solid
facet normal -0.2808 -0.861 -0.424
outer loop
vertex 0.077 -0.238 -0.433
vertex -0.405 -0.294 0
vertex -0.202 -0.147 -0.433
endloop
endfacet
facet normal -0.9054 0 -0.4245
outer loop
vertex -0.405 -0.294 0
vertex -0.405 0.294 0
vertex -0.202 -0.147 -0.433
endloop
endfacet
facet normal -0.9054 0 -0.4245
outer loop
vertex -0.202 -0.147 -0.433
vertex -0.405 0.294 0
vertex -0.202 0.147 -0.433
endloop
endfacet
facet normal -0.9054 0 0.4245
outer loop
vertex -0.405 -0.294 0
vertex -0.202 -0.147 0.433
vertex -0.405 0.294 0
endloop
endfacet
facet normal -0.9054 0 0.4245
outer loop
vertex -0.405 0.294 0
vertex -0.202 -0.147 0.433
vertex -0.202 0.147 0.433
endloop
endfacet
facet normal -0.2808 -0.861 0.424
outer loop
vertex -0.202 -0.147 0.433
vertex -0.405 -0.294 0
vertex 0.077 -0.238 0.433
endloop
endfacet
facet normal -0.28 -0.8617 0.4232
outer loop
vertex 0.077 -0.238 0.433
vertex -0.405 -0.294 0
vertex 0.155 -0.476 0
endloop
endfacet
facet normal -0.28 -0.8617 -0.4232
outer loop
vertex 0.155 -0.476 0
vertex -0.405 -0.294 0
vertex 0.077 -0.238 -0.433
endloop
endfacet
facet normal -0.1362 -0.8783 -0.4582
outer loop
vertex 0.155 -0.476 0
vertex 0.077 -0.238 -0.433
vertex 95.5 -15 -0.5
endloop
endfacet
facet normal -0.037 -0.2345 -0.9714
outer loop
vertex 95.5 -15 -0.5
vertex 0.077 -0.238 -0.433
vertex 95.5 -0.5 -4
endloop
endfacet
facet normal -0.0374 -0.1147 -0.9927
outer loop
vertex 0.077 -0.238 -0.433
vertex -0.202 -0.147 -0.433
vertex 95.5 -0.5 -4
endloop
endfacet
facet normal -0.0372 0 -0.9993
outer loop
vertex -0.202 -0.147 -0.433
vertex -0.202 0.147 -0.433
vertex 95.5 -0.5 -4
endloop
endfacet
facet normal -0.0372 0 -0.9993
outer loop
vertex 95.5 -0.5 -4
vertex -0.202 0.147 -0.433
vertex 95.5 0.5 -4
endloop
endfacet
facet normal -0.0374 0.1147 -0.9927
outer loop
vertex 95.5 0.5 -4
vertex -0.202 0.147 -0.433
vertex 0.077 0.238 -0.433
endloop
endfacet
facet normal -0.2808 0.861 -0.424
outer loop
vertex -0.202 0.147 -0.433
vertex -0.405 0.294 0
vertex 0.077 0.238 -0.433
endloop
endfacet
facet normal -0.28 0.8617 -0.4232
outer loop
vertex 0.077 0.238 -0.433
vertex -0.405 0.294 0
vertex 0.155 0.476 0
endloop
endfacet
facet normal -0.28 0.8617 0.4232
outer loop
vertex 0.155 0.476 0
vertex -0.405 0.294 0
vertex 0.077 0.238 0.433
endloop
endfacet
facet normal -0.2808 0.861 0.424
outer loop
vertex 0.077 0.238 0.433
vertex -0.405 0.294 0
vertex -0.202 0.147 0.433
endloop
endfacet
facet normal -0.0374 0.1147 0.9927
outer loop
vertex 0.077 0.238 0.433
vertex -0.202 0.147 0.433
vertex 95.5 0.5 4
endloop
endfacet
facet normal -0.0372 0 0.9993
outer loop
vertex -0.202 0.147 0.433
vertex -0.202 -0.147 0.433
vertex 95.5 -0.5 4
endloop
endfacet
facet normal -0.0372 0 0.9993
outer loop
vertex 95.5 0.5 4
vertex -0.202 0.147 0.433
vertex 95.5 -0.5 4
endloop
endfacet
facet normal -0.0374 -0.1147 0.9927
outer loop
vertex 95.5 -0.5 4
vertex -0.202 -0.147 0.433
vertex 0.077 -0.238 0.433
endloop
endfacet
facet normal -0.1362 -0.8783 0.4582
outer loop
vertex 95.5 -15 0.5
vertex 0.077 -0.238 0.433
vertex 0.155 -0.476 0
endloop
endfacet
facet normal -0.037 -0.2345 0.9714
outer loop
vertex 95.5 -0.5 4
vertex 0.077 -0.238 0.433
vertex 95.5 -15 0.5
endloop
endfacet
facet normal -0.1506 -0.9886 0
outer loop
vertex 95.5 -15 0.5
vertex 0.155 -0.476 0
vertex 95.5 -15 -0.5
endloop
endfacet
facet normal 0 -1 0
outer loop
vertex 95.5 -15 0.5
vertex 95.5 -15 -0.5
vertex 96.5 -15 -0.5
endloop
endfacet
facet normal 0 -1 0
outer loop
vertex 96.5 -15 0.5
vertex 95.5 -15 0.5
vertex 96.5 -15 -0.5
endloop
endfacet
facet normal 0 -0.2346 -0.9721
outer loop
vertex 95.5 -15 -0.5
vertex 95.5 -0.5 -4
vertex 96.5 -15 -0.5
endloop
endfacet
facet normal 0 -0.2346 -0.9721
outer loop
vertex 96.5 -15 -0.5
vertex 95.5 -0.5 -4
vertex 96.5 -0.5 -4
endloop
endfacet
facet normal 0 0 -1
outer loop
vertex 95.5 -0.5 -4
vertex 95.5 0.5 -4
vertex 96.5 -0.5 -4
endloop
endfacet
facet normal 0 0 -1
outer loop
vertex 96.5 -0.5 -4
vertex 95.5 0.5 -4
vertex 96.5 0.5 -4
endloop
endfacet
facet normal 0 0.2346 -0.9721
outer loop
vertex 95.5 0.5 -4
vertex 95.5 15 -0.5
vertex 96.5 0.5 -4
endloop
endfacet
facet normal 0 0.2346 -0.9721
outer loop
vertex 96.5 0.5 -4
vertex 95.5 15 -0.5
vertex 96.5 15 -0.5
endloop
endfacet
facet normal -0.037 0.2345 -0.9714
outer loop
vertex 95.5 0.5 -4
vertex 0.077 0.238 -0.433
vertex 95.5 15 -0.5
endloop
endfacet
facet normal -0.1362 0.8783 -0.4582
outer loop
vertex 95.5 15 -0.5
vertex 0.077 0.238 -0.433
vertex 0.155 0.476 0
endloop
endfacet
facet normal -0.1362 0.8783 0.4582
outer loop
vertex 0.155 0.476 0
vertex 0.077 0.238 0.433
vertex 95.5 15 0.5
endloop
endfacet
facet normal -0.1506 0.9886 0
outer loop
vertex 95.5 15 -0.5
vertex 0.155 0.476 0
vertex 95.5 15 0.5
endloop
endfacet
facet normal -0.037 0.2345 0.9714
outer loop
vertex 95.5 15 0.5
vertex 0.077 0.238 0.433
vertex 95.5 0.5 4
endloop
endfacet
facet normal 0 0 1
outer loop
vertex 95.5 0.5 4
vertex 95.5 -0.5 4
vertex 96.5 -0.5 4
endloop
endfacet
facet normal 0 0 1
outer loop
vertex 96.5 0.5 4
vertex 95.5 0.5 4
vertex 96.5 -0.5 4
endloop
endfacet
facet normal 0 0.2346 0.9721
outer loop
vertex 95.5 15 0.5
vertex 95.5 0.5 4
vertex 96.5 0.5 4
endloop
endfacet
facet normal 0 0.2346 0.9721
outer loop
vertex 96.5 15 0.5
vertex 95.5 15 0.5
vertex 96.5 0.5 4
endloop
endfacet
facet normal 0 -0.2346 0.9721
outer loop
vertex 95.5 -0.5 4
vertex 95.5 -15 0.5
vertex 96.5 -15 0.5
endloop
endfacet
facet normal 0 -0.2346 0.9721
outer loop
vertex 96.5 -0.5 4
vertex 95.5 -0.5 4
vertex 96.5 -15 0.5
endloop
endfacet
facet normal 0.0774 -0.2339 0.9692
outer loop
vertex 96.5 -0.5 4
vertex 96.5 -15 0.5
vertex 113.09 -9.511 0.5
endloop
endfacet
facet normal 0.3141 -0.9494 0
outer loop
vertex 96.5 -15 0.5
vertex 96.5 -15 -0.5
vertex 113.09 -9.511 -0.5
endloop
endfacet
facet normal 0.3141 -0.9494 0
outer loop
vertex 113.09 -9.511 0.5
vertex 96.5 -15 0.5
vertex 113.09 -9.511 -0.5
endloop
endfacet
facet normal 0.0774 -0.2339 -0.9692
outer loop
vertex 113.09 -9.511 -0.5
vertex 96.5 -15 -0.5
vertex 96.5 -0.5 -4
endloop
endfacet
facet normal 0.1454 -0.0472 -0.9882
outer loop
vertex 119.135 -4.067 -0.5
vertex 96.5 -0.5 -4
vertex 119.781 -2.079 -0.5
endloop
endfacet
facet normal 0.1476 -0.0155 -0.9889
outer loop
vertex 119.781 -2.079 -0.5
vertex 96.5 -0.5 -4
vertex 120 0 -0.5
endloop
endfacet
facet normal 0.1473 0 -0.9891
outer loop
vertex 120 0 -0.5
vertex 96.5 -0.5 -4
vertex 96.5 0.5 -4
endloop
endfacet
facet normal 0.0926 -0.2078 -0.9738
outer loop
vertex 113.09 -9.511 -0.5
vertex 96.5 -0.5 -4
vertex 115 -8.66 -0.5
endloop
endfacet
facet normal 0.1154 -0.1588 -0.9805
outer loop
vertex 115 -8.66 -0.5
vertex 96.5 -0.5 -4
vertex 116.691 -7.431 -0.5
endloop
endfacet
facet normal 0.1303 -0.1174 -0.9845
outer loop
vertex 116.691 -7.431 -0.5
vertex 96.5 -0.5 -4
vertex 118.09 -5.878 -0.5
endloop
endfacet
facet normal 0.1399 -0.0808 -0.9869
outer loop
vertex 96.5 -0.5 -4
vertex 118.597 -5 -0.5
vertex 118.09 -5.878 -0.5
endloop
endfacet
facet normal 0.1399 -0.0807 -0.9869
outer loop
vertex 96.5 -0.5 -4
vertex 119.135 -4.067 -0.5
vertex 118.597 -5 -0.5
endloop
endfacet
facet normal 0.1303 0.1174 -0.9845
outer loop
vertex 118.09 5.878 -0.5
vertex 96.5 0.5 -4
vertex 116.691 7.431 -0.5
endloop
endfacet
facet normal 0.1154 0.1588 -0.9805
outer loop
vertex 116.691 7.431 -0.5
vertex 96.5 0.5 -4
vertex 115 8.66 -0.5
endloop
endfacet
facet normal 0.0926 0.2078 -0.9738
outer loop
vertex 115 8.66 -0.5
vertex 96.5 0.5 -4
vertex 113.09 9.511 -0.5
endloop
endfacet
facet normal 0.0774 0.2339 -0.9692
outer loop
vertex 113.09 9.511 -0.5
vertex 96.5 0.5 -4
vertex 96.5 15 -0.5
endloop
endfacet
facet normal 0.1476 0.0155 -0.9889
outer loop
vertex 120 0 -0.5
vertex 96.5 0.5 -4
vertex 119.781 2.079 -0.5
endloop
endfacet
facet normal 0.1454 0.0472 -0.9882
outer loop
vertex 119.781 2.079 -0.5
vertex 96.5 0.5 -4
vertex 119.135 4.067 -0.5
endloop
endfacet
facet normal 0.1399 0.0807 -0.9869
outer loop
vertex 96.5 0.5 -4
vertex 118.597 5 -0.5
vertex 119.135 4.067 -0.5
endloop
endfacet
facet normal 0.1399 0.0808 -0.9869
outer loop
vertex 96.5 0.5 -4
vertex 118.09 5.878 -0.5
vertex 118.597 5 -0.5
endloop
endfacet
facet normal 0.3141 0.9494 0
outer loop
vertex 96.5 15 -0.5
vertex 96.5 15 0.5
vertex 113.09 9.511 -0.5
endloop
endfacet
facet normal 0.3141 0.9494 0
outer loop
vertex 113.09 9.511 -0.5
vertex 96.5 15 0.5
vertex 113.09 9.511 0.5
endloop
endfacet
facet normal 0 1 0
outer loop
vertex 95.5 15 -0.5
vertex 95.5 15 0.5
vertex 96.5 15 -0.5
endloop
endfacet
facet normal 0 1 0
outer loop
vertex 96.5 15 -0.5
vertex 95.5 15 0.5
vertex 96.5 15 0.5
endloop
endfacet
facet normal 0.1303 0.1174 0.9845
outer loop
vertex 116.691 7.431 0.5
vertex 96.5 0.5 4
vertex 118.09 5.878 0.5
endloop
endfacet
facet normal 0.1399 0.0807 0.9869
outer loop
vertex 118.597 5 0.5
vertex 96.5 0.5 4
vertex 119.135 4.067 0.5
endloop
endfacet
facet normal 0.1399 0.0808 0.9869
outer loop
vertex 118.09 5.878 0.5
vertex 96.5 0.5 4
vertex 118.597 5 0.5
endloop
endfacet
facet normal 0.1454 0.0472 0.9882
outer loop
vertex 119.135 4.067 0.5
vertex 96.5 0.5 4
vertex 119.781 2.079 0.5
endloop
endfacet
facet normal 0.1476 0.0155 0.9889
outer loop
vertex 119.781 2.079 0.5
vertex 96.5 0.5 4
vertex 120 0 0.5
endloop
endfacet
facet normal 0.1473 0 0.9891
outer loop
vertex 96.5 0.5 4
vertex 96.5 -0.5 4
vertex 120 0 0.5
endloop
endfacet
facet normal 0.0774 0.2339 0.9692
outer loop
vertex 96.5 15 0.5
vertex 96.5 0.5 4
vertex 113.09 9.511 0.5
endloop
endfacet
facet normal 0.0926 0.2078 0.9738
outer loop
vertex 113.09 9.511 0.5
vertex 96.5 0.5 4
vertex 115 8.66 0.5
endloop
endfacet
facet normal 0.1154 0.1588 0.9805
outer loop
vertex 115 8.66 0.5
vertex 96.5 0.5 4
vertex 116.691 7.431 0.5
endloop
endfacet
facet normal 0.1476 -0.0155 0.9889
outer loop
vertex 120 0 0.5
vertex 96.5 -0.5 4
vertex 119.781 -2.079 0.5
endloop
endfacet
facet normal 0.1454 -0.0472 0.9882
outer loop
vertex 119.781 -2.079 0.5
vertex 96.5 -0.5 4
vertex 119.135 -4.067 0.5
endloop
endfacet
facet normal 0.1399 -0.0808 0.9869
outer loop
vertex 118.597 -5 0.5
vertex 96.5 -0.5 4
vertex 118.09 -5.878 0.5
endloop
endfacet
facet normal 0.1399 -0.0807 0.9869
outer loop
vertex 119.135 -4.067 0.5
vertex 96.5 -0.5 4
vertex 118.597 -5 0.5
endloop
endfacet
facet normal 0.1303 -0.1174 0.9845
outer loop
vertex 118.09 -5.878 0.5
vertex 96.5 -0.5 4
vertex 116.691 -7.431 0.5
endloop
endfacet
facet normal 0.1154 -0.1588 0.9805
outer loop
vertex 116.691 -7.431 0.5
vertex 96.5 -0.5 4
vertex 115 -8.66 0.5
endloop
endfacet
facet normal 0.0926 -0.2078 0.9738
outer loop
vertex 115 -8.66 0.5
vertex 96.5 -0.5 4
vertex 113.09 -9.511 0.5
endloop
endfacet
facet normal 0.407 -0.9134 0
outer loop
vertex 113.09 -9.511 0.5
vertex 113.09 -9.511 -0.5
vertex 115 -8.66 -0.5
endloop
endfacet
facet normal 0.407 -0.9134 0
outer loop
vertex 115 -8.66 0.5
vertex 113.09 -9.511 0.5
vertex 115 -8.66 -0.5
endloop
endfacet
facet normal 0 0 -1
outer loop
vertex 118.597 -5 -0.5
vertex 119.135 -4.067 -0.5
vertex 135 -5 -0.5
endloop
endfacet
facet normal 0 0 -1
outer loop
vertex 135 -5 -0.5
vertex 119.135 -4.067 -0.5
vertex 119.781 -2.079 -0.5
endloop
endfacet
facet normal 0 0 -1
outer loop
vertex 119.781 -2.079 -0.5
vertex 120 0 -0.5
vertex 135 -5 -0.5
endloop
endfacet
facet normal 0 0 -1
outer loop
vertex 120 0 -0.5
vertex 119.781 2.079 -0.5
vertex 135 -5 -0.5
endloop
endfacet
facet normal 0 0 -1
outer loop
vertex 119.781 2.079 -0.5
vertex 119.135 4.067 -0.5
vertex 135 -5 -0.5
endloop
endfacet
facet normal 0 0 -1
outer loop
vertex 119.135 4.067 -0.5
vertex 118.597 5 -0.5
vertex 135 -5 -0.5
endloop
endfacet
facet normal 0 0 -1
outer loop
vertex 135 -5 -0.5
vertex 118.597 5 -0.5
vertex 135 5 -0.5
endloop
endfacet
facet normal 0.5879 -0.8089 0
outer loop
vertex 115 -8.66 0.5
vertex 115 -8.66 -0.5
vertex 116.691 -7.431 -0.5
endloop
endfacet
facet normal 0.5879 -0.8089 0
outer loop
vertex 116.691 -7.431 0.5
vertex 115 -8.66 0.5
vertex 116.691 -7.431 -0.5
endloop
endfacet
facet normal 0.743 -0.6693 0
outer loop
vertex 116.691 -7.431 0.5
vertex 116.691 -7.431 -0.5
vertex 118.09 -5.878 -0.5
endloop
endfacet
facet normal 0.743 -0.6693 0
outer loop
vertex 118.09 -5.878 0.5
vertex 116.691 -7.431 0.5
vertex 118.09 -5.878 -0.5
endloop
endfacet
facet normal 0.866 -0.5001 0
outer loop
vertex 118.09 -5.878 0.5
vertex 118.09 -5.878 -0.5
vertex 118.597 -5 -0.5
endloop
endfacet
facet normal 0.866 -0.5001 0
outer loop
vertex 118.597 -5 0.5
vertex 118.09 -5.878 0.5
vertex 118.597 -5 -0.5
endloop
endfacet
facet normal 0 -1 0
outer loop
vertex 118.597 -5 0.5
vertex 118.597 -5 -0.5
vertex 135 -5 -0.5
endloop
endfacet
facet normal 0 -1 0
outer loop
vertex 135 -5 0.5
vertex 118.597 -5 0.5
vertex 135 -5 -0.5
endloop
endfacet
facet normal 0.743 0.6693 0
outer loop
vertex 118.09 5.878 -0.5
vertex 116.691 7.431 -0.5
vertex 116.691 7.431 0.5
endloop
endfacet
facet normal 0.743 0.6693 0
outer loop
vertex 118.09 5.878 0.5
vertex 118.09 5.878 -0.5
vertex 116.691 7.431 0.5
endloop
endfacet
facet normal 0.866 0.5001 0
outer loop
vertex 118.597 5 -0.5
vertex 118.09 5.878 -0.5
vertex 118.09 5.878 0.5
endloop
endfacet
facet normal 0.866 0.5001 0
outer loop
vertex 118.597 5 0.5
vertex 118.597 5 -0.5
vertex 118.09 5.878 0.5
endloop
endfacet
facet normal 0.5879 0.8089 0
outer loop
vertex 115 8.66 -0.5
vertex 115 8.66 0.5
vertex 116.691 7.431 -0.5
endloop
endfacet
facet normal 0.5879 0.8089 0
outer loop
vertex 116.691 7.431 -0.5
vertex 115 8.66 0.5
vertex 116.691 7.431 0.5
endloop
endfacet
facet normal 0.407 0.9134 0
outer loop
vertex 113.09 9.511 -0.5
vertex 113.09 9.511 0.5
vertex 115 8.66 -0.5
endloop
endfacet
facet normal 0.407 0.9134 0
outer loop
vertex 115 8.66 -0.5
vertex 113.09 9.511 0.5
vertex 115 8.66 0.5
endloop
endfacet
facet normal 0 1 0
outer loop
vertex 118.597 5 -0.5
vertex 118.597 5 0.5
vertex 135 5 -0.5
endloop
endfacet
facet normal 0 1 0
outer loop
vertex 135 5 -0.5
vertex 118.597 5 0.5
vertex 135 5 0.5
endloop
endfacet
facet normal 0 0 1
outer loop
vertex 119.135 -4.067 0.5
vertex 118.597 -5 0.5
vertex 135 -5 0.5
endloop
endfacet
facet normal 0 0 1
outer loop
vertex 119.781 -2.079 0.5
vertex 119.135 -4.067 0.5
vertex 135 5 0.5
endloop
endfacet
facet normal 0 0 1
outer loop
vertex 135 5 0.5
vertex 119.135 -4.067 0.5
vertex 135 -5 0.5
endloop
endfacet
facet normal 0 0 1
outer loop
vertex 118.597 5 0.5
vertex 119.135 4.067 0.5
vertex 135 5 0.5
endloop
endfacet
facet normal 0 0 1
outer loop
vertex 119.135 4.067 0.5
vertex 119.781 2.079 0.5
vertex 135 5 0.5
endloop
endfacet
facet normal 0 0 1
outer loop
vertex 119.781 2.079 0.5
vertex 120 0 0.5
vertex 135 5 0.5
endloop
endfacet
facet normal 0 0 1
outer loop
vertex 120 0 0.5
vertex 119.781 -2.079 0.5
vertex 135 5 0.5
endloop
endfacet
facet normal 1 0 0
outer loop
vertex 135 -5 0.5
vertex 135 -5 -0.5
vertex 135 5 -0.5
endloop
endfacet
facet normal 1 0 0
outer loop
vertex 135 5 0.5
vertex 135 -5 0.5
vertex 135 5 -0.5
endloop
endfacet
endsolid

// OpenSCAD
/*
 * Small spear tip modelled on a Zulu short spear. Made for my father's scount troop.
 */

module SpearTip(length = 120, width = 30, height = 8, thickness = 1)
{
    widestPointX =  length * 8 / 10; // X axis position of widest point

    hull()
    {
        sphere(0.5);
    
        translate([widestPointX, 0, 0])
        cube([1, width, thickness], center = true);

        translate([widestPointX, 0, 0])
        cube([1, 1, height], center = true);

        translate([length - width/3, 0, 0])
        cylinder(r = width/3, height = thickness, center = true);
    }

    translate([length, 0, 0])
    cube([30, width/3, thickness], center = true);
}

SpearTip();
